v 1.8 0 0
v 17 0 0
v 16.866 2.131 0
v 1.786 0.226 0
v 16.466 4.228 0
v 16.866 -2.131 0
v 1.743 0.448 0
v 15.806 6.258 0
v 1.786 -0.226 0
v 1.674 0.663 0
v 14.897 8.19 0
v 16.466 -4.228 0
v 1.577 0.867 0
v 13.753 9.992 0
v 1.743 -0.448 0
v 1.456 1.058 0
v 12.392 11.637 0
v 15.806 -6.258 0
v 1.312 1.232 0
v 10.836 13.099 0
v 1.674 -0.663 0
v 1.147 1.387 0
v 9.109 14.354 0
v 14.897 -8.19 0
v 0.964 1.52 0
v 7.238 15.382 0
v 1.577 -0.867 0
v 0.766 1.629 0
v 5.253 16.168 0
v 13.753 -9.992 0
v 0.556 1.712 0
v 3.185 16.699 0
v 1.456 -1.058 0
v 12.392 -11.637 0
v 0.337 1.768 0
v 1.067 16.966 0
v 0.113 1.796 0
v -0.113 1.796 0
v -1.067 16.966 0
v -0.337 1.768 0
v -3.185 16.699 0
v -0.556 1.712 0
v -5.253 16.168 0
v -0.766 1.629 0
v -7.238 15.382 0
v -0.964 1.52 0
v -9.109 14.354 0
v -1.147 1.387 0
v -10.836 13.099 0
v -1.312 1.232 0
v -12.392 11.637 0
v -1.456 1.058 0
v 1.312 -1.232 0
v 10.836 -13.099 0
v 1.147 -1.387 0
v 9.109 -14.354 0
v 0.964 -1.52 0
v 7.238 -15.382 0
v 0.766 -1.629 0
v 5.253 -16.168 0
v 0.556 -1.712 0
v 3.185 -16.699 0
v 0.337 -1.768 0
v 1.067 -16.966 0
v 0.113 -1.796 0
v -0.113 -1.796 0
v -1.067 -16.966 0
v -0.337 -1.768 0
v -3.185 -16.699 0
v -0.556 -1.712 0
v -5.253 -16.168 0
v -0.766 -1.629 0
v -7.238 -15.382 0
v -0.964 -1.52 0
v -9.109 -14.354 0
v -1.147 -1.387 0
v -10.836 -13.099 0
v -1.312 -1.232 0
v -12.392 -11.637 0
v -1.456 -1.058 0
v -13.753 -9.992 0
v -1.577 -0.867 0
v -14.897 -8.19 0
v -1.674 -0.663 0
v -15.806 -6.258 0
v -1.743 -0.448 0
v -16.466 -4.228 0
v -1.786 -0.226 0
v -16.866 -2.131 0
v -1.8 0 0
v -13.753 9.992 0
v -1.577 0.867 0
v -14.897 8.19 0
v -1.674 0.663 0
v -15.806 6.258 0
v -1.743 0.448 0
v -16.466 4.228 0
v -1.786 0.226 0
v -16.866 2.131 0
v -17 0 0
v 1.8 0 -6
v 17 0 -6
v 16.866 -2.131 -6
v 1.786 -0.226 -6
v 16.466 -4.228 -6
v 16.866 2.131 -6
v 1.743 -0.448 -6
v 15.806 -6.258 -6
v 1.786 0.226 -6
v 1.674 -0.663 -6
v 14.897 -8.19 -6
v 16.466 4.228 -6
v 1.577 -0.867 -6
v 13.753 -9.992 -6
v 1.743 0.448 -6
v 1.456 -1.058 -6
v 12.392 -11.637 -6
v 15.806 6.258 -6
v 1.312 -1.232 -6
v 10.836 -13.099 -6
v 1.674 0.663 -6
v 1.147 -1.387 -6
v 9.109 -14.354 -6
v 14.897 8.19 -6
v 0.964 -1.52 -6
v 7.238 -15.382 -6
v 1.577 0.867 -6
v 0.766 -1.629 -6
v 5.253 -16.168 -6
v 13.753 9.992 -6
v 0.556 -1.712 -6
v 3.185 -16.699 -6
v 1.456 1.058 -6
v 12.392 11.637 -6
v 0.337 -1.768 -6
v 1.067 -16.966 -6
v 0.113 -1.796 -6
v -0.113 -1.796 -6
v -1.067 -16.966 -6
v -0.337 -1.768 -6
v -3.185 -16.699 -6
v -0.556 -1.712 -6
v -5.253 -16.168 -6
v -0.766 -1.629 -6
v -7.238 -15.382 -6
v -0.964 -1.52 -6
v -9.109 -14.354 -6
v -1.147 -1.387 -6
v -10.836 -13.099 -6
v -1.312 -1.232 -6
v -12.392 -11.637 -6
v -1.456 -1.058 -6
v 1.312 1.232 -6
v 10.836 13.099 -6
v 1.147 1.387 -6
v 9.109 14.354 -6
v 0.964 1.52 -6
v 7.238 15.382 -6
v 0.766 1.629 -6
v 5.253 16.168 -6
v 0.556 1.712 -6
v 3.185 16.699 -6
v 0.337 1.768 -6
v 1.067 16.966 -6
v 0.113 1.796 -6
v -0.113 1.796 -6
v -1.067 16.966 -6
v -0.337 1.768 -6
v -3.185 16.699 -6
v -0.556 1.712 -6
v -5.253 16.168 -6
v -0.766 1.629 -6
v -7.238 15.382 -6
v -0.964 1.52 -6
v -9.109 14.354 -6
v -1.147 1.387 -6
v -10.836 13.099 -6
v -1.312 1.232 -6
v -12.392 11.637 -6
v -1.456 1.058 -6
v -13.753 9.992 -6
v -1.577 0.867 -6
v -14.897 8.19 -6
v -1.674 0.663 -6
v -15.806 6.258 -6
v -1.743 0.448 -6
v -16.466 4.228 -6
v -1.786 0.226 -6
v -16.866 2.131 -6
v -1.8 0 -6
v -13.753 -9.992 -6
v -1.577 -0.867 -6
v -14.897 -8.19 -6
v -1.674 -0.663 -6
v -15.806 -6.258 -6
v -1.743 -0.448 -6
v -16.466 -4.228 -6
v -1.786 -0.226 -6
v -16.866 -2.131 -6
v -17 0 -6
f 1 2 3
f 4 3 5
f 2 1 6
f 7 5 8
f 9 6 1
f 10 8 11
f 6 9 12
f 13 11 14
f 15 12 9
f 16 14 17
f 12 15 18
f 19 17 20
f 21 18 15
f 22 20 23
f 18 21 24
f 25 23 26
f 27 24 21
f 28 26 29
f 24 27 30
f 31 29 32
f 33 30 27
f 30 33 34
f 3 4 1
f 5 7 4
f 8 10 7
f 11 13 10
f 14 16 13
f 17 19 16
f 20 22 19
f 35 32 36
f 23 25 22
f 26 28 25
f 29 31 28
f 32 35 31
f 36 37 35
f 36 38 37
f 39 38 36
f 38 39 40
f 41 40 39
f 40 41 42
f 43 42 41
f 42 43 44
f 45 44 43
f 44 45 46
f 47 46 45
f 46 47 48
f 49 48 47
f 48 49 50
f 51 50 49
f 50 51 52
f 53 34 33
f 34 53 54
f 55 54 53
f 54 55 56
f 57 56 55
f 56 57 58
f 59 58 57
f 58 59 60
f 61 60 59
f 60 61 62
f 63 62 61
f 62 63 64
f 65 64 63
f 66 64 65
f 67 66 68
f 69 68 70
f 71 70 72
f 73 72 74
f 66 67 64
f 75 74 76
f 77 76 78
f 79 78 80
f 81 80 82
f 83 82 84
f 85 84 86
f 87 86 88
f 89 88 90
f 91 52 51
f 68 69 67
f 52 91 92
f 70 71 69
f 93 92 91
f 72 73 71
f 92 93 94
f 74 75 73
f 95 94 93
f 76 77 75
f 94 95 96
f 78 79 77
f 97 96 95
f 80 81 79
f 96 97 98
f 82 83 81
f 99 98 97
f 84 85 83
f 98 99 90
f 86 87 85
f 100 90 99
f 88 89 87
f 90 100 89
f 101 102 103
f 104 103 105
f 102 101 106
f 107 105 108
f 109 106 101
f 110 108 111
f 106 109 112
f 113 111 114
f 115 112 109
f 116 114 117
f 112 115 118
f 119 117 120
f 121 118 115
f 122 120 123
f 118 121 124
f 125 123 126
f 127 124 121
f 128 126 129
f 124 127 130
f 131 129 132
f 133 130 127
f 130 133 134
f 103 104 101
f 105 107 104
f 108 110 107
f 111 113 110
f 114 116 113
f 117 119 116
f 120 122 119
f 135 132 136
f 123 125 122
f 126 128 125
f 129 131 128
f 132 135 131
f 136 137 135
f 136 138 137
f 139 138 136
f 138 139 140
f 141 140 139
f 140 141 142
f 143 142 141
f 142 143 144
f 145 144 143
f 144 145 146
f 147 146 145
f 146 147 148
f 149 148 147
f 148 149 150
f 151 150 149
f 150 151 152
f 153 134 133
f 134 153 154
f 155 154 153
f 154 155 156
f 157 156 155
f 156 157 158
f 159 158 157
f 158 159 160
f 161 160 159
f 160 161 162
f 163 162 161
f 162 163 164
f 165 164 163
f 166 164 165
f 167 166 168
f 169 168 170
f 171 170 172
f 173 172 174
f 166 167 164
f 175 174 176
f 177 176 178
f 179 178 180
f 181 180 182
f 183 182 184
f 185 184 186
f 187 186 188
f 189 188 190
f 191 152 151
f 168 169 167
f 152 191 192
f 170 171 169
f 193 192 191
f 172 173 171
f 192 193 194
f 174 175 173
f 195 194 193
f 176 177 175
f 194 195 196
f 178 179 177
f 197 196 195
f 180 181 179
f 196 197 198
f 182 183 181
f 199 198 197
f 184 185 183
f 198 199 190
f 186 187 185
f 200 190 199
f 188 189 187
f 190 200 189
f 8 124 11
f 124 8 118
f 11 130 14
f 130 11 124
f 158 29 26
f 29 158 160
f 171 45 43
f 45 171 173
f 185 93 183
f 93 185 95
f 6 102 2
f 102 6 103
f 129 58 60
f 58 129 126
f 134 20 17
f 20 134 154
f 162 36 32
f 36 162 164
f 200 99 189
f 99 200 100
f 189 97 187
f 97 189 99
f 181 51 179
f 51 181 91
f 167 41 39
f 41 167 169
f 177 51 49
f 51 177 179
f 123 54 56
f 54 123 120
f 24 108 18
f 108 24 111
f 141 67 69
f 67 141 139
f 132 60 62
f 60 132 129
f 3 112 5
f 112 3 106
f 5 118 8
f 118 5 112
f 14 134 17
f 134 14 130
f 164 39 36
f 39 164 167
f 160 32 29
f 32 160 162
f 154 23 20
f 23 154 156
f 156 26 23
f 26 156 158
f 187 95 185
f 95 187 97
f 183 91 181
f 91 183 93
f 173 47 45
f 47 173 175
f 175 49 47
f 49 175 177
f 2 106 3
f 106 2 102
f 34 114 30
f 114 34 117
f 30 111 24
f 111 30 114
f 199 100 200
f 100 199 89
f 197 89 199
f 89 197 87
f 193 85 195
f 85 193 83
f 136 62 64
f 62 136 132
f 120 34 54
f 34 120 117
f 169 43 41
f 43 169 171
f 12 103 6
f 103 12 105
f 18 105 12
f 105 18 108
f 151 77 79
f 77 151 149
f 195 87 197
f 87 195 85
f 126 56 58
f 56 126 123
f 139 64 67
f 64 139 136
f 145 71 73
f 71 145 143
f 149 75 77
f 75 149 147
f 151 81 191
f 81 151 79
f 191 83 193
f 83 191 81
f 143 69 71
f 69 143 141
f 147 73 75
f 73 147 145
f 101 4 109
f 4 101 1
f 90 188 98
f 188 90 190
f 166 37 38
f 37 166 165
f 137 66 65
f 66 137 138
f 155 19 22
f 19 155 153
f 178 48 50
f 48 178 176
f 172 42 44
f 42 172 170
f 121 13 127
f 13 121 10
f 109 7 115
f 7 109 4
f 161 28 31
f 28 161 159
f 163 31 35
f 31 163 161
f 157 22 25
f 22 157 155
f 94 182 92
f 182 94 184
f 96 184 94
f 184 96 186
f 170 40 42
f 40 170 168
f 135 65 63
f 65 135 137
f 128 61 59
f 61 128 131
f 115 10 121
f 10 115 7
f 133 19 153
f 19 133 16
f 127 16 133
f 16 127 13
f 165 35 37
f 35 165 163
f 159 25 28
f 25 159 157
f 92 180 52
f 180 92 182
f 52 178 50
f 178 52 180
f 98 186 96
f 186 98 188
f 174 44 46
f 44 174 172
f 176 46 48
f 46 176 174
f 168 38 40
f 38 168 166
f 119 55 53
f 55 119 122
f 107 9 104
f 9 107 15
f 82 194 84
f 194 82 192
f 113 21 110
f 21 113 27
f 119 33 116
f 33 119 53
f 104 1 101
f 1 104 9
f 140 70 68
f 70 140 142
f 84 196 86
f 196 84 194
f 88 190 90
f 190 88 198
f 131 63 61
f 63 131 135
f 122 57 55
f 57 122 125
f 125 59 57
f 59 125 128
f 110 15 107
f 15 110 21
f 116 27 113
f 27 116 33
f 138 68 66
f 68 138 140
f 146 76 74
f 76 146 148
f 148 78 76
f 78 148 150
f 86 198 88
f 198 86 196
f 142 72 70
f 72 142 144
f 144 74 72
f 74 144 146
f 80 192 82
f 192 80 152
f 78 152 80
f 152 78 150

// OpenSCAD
$fn = 50;


difference() {
	union() {
		translate(v = [0, 0, -6.0000000000]) {
			cylinder(h = 6, r = 7.0000000000);
		}
		translate(v = [0, 0, -6.0000000000]) {
			cylinder(h = 6, r = 17.0000000000);
		}
	}
	union() {
		#translate(v = [0, 0, -6]) {
			cylinder(h = 6, r = 1.8000000000);
		}
	}
}
